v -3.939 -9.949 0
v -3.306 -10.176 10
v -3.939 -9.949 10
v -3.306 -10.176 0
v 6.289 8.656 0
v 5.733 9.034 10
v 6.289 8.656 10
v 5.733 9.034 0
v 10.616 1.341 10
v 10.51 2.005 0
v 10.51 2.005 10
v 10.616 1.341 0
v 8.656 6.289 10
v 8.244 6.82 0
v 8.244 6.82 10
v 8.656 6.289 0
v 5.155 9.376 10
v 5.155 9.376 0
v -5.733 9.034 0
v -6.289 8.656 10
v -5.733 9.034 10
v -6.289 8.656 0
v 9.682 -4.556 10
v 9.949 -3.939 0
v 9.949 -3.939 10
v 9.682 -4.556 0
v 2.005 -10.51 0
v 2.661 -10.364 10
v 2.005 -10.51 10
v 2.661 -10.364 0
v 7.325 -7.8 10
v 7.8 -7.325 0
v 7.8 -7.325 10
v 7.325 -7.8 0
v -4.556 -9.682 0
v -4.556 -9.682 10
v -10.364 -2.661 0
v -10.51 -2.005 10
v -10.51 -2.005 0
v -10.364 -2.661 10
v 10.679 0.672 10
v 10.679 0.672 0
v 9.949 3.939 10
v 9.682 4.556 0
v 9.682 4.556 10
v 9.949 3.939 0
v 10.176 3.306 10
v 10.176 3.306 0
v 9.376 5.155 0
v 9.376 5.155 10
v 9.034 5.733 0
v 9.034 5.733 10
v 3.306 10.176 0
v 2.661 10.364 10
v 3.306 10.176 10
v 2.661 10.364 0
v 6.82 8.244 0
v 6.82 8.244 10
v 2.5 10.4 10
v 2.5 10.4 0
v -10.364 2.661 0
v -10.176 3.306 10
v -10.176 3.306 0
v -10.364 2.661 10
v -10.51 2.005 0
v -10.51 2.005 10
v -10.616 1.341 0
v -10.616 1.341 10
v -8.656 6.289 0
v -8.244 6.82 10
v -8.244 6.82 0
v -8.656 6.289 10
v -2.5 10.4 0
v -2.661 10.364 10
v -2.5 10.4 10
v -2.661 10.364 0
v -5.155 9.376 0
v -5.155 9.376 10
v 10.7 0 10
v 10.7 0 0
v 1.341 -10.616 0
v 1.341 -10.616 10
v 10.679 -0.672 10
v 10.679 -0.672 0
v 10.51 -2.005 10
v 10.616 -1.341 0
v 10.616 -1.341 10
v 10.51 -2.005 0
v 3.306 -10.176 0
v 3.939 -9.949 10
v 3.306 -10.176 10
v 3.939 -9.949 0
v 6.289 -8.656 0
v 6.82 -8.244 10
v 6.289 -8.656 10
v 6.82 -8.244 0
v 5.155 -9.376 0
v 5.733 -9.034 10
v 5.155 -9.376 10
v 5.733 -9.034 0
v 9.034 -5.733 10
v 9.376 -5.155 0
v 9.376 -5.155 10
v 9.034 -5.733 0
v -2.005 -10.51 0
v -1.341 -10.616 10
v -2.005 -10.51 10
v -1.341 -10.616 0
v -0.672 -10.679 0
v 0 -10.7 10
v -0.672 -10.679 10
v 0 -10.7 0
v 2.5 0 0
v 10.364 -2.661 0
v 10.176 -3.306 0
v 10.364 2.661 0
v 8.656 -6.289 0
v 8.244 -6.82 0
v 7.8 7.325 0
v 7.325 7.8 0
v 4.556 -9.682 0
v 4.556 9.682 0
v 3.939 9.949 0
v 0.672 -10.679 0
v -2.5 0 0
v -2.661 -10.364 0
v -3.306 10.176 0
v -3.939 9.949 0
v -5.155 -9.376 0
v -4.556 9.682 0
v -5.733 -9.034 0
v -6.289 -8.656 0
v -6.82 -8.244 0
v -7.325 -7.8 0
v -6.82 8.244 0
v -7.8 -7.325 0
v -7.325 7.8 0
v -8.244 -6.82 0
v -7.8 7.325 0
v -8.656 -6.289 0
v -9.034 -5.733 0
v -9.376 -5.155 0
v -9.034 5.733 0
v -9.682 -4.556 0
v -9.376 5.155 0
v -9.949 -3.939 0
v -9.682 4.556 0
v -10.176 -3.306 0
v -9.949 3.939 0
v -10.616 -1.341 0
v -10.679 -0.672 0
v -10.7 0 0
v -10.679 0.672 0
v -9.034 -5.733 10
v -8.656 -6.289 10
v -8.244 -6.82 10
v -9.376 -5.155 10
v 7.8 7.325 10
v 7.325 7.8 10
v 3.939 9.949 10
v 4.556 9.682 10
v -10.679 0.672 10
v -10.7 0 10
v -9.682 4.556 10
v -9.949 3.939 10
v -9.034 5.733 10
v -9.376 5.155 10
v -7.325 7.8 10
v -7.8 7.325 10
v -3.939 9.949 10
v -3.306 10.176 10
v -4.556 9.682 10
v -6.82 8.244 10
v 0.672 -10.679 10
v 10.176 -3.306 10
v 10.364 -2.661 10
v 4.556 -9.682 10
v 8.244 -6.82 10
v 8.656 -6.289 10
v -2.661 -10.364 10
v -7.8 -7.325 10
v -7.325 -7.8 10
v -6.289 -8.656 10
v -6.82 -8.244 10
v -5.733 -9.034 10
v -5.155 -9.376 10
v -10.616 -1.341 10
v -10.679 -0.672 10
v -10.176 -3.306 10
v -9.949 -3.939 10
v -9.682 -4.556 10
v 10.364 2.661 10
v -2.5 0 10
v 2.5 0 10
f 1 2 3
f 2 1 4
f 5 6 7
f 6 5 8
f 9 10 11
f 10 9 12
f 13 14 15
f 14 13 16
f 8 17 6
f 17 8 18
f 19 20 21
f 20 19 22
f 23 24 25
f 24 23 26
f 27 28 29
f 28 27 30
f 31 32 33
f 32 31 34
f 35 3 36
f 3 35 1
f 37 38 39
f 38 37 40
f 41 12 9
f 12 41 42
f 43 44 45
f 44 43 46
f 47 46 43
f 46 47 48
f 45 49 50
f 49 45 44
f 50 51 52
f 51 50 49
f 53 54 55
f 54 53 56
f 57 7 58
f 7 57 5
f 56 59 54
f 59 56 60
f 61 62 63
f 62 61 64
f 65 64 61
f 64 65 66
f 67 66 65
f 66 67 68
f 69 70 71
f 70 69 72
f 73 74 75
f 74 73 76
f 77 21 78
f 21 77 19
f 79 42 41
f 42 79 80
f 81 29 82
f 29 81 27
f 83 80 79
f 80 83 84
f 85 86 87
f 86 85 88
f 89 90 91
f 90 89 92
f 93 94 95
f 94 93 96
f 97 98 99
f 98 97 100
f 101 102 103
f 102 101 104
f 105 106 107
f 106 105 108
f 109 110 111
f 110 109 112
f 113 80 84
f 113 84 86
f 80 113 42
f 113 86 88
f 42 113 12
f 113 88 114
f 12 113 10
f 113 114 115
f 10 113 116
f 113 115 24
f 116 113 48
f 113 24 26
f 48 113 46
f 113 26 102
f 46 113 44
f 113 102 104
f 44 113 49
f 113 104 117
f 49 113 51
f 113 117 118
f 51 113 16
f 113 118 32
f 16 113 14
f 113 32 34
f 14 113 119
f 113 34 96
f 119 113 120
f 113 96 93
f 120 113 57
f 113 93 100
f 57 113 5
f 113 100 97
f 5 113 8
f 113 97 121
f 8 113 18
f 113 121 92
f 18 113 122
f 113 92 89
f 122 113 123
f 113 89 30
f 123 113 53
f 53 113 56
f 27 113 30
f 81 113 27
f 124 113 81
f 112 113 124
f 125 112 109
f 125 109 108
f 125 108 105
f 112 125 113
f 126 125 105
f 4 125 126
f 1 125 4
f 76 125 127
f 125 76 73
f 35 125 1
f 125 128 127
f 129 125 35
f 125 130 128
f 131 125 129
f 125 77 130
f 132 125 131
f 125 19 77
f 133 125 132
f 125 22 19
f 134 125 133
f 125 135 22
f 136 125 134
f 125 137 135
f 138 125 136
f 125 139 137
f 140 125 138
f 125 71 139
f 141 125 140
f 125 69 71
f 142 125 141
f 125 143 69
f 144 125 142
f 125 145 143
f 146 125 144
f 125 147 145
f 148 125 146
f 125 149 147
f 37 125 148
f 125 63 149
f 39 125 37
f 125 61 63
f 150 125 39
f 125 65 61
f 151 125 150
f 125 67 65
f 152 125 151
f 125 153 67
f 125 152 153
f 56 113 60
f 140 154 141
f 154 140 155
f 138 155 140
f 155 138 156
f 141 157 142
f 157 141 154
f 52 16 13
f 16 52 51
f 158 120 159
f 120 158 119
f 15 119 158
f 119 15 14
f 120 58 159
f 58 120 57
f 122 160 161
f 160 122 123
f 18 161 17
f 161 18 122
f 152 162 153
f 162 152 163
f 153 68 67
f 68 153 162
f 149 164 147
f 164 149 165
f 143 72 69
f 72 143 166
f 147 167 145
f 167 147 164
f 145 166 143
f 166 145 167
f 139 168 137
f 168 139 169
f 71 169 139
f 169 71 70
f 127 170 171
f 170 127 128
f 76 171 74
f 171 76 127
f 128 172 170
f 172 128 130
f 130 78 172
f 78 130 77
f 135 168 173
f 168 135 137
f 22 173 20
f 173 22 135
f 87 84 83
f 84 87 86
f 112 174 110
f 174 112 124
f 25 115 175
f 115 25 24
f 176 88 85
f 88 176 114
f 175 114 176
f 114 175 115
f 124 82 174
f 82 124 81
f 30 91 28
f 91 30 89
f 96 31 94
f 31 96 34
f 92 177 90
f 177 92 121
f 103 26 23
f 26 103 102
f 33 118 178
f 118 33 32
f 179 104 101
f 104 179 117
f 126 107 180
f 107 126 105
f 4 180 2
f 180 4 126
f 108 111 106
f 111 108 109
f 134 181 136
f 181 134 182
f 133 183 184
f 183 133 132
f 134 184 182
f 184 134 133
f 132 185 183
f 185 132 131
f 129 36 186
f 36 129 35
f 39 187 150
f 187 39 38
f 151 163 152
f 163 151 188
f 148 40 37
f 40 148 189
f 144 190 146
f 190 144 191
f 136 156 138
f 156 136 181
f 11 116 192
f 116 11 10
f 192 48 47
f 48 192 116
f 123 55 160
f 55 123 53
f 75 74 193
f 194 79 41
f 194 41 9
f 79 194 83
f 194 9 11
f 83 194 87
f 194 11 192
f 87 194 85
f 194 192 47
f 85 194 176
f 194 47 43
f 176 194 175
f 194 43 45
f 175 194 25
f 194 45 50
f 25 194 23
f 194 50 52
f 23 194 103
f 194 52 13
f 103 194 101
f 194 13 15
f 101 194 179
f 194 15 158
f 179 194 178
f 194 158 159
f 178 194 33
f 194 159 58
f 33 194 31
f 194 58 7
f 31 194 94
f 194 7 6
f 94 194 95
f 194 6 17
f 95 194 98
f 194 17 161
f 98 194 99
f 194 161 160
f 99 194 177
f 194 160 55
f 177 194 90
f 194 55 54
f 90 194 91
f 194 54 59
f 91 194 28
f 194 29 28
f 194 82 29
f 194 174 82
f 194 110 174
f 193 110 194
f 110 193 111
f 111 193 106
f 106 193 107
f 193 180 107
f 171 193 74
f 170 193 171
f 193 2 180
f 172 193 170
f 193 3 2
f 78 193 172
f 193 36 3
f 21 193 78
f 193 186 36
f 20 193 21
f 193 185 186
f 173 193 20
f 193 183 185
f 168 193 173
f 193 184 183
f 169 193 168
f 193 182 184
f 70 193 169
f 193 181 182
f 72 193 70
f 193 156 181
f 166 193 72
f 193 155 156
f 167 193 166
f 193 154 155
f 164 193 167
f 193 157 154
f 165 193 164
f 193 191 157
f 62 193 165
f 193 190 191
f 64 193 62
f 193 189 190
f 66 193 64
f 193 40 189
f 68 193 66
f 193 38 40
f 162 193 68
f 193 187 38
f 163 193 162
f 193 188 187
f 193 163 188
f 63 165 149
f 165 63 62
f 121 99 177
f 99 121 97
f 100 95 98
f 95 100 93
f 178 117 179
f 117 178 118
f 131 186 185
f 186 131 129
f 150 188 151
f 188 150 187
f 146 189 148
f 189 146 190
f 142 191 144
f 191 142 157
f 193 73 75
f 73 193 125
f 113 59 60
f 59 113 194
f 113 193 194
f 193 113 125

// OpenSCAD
// file: ../configuration.scad
$fn=40; // model faces resolution.

//Parametry pro D01 a D02
//nastavení držáku na sloup
//----------------------------------------------------------------
//----------------------------------------------------------------
//není potřeba měnit
S01_prumer_vnitrni=40;
S01_tolerance_zavit=1.5;

S01_sila_materialu=1.3; //sila výtuhy

//D01 - uchyt velky
D01_material_pod_zavitem=5;
D01_material_za_zavitem=3;
D01_material_pred_zavitem=2;
D01_delka_tyce=30;
D01_sirka_tyce=15;

//D02 - uchyt na sloup
D02_sila_materialu=5;
D02_vyska_uchytky=40;
D02_prumer_obruby=32; 
//27mm - 3/4 trubka
D02_delka_celeho_uchytu=60;
D02_dotahova_vzdalenost=1.5;
D02_prumer_uchytneho_sroubu=4.2;
D02_sirka_matky=9.1; //pro M4
D02_vyska_matky=3;


D05_vyska_drzaku_senzoru=15;
D05_prumer_zkumavky_vnitrni=21.4;
D05_vyska_podstavce=10;
D05_sirka_otvoru_na_kabel=5;
// file: ../SRC/ISLHOLDER01A_D06.scad
$fn=40; // model faces resolution.
include <../configuration.scad>


//Ucpávka
module ISLHOLDER01A_D06()
    {
  
            
   difference()
        {         
        cylinder (h = D05_vyska_podstavce, r=D05_prumer_zkumavky_vnitrni/2, $fn=100);
        
        translate([0,D05_prumer_zkumavky_vnitrni/4,D05_vyska_podstavce/2])  
            cube([D05_sirka_otvoru_na_kabel,D05_prumer_zkumavky_vnitrni/2,D05_vyska_podstavce+0.11],true); 
         
        
       }
    }

ISLHOLDER01A_D06();
// file: ../configuration2.scad
$fn=40; // model faces resolution.

//Parametry pro D03 a D04
//Nastavení držáku zkumavky
//----------------------------------------------------------------
//----------------------------------------------------------------
//není potřeba měnit
S01_prumer_vnitrni=40;
S01_tolerance_zavit=1.5;

S01_sila_materialu=1.3; //sila výtuhy

//D03 - uchyt velky
D01_material_pod_zavitem=5;
D01_material_za_zavitem=3;
D01_material_pred_zavitem=2;
D01_delka_tyce=20;
D01_sirka_tyce=15;

//D04 - uchyt na sloup
D02_sila_materialu=4;
D02_vyska_uchytky=30;
D02_prumer_obruby=24.2; //pruměr zkumavky
D02_delka_celeho_uchytu=50;
D02_dotahova_vzdalenost=1.5;
D02_prumer_uchytneho_sroubu=4.2;
D02_sirka_matky=9.1; //pro M4
D02_vyska_matky=3;
// main file
$fn=100; // model faces resolution.
include <../configuration2.scad>
use <../SRC/ISLHOLDER01A_D06.scad>

rotate([0, 0, 0])
    translate([0,0,0])
        ISLHOLDER01A_D06();

            
